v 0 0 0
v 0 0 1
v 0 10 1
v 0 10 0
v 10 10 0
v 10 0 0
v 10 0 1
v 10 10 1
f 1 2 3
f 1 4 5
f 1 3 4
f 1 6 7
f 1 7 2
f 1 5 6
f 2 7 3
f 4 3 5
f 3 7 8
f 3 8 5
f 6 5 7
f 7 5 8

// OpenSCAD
/* Warning, this is a very basic generator with a lot of approximation 
input data : [TQFP, JVX, 10x10x1.0mm, 64, , A, C04-00435A]
generated by com.zoubworld.electronics.cad.model3d.Basic
Date : Sun Feb 15 10:50:48 CET 2026
*/

//body
color("black")
translate([0,0,0])
cube([10.0,10.0,1.0], center=false);
